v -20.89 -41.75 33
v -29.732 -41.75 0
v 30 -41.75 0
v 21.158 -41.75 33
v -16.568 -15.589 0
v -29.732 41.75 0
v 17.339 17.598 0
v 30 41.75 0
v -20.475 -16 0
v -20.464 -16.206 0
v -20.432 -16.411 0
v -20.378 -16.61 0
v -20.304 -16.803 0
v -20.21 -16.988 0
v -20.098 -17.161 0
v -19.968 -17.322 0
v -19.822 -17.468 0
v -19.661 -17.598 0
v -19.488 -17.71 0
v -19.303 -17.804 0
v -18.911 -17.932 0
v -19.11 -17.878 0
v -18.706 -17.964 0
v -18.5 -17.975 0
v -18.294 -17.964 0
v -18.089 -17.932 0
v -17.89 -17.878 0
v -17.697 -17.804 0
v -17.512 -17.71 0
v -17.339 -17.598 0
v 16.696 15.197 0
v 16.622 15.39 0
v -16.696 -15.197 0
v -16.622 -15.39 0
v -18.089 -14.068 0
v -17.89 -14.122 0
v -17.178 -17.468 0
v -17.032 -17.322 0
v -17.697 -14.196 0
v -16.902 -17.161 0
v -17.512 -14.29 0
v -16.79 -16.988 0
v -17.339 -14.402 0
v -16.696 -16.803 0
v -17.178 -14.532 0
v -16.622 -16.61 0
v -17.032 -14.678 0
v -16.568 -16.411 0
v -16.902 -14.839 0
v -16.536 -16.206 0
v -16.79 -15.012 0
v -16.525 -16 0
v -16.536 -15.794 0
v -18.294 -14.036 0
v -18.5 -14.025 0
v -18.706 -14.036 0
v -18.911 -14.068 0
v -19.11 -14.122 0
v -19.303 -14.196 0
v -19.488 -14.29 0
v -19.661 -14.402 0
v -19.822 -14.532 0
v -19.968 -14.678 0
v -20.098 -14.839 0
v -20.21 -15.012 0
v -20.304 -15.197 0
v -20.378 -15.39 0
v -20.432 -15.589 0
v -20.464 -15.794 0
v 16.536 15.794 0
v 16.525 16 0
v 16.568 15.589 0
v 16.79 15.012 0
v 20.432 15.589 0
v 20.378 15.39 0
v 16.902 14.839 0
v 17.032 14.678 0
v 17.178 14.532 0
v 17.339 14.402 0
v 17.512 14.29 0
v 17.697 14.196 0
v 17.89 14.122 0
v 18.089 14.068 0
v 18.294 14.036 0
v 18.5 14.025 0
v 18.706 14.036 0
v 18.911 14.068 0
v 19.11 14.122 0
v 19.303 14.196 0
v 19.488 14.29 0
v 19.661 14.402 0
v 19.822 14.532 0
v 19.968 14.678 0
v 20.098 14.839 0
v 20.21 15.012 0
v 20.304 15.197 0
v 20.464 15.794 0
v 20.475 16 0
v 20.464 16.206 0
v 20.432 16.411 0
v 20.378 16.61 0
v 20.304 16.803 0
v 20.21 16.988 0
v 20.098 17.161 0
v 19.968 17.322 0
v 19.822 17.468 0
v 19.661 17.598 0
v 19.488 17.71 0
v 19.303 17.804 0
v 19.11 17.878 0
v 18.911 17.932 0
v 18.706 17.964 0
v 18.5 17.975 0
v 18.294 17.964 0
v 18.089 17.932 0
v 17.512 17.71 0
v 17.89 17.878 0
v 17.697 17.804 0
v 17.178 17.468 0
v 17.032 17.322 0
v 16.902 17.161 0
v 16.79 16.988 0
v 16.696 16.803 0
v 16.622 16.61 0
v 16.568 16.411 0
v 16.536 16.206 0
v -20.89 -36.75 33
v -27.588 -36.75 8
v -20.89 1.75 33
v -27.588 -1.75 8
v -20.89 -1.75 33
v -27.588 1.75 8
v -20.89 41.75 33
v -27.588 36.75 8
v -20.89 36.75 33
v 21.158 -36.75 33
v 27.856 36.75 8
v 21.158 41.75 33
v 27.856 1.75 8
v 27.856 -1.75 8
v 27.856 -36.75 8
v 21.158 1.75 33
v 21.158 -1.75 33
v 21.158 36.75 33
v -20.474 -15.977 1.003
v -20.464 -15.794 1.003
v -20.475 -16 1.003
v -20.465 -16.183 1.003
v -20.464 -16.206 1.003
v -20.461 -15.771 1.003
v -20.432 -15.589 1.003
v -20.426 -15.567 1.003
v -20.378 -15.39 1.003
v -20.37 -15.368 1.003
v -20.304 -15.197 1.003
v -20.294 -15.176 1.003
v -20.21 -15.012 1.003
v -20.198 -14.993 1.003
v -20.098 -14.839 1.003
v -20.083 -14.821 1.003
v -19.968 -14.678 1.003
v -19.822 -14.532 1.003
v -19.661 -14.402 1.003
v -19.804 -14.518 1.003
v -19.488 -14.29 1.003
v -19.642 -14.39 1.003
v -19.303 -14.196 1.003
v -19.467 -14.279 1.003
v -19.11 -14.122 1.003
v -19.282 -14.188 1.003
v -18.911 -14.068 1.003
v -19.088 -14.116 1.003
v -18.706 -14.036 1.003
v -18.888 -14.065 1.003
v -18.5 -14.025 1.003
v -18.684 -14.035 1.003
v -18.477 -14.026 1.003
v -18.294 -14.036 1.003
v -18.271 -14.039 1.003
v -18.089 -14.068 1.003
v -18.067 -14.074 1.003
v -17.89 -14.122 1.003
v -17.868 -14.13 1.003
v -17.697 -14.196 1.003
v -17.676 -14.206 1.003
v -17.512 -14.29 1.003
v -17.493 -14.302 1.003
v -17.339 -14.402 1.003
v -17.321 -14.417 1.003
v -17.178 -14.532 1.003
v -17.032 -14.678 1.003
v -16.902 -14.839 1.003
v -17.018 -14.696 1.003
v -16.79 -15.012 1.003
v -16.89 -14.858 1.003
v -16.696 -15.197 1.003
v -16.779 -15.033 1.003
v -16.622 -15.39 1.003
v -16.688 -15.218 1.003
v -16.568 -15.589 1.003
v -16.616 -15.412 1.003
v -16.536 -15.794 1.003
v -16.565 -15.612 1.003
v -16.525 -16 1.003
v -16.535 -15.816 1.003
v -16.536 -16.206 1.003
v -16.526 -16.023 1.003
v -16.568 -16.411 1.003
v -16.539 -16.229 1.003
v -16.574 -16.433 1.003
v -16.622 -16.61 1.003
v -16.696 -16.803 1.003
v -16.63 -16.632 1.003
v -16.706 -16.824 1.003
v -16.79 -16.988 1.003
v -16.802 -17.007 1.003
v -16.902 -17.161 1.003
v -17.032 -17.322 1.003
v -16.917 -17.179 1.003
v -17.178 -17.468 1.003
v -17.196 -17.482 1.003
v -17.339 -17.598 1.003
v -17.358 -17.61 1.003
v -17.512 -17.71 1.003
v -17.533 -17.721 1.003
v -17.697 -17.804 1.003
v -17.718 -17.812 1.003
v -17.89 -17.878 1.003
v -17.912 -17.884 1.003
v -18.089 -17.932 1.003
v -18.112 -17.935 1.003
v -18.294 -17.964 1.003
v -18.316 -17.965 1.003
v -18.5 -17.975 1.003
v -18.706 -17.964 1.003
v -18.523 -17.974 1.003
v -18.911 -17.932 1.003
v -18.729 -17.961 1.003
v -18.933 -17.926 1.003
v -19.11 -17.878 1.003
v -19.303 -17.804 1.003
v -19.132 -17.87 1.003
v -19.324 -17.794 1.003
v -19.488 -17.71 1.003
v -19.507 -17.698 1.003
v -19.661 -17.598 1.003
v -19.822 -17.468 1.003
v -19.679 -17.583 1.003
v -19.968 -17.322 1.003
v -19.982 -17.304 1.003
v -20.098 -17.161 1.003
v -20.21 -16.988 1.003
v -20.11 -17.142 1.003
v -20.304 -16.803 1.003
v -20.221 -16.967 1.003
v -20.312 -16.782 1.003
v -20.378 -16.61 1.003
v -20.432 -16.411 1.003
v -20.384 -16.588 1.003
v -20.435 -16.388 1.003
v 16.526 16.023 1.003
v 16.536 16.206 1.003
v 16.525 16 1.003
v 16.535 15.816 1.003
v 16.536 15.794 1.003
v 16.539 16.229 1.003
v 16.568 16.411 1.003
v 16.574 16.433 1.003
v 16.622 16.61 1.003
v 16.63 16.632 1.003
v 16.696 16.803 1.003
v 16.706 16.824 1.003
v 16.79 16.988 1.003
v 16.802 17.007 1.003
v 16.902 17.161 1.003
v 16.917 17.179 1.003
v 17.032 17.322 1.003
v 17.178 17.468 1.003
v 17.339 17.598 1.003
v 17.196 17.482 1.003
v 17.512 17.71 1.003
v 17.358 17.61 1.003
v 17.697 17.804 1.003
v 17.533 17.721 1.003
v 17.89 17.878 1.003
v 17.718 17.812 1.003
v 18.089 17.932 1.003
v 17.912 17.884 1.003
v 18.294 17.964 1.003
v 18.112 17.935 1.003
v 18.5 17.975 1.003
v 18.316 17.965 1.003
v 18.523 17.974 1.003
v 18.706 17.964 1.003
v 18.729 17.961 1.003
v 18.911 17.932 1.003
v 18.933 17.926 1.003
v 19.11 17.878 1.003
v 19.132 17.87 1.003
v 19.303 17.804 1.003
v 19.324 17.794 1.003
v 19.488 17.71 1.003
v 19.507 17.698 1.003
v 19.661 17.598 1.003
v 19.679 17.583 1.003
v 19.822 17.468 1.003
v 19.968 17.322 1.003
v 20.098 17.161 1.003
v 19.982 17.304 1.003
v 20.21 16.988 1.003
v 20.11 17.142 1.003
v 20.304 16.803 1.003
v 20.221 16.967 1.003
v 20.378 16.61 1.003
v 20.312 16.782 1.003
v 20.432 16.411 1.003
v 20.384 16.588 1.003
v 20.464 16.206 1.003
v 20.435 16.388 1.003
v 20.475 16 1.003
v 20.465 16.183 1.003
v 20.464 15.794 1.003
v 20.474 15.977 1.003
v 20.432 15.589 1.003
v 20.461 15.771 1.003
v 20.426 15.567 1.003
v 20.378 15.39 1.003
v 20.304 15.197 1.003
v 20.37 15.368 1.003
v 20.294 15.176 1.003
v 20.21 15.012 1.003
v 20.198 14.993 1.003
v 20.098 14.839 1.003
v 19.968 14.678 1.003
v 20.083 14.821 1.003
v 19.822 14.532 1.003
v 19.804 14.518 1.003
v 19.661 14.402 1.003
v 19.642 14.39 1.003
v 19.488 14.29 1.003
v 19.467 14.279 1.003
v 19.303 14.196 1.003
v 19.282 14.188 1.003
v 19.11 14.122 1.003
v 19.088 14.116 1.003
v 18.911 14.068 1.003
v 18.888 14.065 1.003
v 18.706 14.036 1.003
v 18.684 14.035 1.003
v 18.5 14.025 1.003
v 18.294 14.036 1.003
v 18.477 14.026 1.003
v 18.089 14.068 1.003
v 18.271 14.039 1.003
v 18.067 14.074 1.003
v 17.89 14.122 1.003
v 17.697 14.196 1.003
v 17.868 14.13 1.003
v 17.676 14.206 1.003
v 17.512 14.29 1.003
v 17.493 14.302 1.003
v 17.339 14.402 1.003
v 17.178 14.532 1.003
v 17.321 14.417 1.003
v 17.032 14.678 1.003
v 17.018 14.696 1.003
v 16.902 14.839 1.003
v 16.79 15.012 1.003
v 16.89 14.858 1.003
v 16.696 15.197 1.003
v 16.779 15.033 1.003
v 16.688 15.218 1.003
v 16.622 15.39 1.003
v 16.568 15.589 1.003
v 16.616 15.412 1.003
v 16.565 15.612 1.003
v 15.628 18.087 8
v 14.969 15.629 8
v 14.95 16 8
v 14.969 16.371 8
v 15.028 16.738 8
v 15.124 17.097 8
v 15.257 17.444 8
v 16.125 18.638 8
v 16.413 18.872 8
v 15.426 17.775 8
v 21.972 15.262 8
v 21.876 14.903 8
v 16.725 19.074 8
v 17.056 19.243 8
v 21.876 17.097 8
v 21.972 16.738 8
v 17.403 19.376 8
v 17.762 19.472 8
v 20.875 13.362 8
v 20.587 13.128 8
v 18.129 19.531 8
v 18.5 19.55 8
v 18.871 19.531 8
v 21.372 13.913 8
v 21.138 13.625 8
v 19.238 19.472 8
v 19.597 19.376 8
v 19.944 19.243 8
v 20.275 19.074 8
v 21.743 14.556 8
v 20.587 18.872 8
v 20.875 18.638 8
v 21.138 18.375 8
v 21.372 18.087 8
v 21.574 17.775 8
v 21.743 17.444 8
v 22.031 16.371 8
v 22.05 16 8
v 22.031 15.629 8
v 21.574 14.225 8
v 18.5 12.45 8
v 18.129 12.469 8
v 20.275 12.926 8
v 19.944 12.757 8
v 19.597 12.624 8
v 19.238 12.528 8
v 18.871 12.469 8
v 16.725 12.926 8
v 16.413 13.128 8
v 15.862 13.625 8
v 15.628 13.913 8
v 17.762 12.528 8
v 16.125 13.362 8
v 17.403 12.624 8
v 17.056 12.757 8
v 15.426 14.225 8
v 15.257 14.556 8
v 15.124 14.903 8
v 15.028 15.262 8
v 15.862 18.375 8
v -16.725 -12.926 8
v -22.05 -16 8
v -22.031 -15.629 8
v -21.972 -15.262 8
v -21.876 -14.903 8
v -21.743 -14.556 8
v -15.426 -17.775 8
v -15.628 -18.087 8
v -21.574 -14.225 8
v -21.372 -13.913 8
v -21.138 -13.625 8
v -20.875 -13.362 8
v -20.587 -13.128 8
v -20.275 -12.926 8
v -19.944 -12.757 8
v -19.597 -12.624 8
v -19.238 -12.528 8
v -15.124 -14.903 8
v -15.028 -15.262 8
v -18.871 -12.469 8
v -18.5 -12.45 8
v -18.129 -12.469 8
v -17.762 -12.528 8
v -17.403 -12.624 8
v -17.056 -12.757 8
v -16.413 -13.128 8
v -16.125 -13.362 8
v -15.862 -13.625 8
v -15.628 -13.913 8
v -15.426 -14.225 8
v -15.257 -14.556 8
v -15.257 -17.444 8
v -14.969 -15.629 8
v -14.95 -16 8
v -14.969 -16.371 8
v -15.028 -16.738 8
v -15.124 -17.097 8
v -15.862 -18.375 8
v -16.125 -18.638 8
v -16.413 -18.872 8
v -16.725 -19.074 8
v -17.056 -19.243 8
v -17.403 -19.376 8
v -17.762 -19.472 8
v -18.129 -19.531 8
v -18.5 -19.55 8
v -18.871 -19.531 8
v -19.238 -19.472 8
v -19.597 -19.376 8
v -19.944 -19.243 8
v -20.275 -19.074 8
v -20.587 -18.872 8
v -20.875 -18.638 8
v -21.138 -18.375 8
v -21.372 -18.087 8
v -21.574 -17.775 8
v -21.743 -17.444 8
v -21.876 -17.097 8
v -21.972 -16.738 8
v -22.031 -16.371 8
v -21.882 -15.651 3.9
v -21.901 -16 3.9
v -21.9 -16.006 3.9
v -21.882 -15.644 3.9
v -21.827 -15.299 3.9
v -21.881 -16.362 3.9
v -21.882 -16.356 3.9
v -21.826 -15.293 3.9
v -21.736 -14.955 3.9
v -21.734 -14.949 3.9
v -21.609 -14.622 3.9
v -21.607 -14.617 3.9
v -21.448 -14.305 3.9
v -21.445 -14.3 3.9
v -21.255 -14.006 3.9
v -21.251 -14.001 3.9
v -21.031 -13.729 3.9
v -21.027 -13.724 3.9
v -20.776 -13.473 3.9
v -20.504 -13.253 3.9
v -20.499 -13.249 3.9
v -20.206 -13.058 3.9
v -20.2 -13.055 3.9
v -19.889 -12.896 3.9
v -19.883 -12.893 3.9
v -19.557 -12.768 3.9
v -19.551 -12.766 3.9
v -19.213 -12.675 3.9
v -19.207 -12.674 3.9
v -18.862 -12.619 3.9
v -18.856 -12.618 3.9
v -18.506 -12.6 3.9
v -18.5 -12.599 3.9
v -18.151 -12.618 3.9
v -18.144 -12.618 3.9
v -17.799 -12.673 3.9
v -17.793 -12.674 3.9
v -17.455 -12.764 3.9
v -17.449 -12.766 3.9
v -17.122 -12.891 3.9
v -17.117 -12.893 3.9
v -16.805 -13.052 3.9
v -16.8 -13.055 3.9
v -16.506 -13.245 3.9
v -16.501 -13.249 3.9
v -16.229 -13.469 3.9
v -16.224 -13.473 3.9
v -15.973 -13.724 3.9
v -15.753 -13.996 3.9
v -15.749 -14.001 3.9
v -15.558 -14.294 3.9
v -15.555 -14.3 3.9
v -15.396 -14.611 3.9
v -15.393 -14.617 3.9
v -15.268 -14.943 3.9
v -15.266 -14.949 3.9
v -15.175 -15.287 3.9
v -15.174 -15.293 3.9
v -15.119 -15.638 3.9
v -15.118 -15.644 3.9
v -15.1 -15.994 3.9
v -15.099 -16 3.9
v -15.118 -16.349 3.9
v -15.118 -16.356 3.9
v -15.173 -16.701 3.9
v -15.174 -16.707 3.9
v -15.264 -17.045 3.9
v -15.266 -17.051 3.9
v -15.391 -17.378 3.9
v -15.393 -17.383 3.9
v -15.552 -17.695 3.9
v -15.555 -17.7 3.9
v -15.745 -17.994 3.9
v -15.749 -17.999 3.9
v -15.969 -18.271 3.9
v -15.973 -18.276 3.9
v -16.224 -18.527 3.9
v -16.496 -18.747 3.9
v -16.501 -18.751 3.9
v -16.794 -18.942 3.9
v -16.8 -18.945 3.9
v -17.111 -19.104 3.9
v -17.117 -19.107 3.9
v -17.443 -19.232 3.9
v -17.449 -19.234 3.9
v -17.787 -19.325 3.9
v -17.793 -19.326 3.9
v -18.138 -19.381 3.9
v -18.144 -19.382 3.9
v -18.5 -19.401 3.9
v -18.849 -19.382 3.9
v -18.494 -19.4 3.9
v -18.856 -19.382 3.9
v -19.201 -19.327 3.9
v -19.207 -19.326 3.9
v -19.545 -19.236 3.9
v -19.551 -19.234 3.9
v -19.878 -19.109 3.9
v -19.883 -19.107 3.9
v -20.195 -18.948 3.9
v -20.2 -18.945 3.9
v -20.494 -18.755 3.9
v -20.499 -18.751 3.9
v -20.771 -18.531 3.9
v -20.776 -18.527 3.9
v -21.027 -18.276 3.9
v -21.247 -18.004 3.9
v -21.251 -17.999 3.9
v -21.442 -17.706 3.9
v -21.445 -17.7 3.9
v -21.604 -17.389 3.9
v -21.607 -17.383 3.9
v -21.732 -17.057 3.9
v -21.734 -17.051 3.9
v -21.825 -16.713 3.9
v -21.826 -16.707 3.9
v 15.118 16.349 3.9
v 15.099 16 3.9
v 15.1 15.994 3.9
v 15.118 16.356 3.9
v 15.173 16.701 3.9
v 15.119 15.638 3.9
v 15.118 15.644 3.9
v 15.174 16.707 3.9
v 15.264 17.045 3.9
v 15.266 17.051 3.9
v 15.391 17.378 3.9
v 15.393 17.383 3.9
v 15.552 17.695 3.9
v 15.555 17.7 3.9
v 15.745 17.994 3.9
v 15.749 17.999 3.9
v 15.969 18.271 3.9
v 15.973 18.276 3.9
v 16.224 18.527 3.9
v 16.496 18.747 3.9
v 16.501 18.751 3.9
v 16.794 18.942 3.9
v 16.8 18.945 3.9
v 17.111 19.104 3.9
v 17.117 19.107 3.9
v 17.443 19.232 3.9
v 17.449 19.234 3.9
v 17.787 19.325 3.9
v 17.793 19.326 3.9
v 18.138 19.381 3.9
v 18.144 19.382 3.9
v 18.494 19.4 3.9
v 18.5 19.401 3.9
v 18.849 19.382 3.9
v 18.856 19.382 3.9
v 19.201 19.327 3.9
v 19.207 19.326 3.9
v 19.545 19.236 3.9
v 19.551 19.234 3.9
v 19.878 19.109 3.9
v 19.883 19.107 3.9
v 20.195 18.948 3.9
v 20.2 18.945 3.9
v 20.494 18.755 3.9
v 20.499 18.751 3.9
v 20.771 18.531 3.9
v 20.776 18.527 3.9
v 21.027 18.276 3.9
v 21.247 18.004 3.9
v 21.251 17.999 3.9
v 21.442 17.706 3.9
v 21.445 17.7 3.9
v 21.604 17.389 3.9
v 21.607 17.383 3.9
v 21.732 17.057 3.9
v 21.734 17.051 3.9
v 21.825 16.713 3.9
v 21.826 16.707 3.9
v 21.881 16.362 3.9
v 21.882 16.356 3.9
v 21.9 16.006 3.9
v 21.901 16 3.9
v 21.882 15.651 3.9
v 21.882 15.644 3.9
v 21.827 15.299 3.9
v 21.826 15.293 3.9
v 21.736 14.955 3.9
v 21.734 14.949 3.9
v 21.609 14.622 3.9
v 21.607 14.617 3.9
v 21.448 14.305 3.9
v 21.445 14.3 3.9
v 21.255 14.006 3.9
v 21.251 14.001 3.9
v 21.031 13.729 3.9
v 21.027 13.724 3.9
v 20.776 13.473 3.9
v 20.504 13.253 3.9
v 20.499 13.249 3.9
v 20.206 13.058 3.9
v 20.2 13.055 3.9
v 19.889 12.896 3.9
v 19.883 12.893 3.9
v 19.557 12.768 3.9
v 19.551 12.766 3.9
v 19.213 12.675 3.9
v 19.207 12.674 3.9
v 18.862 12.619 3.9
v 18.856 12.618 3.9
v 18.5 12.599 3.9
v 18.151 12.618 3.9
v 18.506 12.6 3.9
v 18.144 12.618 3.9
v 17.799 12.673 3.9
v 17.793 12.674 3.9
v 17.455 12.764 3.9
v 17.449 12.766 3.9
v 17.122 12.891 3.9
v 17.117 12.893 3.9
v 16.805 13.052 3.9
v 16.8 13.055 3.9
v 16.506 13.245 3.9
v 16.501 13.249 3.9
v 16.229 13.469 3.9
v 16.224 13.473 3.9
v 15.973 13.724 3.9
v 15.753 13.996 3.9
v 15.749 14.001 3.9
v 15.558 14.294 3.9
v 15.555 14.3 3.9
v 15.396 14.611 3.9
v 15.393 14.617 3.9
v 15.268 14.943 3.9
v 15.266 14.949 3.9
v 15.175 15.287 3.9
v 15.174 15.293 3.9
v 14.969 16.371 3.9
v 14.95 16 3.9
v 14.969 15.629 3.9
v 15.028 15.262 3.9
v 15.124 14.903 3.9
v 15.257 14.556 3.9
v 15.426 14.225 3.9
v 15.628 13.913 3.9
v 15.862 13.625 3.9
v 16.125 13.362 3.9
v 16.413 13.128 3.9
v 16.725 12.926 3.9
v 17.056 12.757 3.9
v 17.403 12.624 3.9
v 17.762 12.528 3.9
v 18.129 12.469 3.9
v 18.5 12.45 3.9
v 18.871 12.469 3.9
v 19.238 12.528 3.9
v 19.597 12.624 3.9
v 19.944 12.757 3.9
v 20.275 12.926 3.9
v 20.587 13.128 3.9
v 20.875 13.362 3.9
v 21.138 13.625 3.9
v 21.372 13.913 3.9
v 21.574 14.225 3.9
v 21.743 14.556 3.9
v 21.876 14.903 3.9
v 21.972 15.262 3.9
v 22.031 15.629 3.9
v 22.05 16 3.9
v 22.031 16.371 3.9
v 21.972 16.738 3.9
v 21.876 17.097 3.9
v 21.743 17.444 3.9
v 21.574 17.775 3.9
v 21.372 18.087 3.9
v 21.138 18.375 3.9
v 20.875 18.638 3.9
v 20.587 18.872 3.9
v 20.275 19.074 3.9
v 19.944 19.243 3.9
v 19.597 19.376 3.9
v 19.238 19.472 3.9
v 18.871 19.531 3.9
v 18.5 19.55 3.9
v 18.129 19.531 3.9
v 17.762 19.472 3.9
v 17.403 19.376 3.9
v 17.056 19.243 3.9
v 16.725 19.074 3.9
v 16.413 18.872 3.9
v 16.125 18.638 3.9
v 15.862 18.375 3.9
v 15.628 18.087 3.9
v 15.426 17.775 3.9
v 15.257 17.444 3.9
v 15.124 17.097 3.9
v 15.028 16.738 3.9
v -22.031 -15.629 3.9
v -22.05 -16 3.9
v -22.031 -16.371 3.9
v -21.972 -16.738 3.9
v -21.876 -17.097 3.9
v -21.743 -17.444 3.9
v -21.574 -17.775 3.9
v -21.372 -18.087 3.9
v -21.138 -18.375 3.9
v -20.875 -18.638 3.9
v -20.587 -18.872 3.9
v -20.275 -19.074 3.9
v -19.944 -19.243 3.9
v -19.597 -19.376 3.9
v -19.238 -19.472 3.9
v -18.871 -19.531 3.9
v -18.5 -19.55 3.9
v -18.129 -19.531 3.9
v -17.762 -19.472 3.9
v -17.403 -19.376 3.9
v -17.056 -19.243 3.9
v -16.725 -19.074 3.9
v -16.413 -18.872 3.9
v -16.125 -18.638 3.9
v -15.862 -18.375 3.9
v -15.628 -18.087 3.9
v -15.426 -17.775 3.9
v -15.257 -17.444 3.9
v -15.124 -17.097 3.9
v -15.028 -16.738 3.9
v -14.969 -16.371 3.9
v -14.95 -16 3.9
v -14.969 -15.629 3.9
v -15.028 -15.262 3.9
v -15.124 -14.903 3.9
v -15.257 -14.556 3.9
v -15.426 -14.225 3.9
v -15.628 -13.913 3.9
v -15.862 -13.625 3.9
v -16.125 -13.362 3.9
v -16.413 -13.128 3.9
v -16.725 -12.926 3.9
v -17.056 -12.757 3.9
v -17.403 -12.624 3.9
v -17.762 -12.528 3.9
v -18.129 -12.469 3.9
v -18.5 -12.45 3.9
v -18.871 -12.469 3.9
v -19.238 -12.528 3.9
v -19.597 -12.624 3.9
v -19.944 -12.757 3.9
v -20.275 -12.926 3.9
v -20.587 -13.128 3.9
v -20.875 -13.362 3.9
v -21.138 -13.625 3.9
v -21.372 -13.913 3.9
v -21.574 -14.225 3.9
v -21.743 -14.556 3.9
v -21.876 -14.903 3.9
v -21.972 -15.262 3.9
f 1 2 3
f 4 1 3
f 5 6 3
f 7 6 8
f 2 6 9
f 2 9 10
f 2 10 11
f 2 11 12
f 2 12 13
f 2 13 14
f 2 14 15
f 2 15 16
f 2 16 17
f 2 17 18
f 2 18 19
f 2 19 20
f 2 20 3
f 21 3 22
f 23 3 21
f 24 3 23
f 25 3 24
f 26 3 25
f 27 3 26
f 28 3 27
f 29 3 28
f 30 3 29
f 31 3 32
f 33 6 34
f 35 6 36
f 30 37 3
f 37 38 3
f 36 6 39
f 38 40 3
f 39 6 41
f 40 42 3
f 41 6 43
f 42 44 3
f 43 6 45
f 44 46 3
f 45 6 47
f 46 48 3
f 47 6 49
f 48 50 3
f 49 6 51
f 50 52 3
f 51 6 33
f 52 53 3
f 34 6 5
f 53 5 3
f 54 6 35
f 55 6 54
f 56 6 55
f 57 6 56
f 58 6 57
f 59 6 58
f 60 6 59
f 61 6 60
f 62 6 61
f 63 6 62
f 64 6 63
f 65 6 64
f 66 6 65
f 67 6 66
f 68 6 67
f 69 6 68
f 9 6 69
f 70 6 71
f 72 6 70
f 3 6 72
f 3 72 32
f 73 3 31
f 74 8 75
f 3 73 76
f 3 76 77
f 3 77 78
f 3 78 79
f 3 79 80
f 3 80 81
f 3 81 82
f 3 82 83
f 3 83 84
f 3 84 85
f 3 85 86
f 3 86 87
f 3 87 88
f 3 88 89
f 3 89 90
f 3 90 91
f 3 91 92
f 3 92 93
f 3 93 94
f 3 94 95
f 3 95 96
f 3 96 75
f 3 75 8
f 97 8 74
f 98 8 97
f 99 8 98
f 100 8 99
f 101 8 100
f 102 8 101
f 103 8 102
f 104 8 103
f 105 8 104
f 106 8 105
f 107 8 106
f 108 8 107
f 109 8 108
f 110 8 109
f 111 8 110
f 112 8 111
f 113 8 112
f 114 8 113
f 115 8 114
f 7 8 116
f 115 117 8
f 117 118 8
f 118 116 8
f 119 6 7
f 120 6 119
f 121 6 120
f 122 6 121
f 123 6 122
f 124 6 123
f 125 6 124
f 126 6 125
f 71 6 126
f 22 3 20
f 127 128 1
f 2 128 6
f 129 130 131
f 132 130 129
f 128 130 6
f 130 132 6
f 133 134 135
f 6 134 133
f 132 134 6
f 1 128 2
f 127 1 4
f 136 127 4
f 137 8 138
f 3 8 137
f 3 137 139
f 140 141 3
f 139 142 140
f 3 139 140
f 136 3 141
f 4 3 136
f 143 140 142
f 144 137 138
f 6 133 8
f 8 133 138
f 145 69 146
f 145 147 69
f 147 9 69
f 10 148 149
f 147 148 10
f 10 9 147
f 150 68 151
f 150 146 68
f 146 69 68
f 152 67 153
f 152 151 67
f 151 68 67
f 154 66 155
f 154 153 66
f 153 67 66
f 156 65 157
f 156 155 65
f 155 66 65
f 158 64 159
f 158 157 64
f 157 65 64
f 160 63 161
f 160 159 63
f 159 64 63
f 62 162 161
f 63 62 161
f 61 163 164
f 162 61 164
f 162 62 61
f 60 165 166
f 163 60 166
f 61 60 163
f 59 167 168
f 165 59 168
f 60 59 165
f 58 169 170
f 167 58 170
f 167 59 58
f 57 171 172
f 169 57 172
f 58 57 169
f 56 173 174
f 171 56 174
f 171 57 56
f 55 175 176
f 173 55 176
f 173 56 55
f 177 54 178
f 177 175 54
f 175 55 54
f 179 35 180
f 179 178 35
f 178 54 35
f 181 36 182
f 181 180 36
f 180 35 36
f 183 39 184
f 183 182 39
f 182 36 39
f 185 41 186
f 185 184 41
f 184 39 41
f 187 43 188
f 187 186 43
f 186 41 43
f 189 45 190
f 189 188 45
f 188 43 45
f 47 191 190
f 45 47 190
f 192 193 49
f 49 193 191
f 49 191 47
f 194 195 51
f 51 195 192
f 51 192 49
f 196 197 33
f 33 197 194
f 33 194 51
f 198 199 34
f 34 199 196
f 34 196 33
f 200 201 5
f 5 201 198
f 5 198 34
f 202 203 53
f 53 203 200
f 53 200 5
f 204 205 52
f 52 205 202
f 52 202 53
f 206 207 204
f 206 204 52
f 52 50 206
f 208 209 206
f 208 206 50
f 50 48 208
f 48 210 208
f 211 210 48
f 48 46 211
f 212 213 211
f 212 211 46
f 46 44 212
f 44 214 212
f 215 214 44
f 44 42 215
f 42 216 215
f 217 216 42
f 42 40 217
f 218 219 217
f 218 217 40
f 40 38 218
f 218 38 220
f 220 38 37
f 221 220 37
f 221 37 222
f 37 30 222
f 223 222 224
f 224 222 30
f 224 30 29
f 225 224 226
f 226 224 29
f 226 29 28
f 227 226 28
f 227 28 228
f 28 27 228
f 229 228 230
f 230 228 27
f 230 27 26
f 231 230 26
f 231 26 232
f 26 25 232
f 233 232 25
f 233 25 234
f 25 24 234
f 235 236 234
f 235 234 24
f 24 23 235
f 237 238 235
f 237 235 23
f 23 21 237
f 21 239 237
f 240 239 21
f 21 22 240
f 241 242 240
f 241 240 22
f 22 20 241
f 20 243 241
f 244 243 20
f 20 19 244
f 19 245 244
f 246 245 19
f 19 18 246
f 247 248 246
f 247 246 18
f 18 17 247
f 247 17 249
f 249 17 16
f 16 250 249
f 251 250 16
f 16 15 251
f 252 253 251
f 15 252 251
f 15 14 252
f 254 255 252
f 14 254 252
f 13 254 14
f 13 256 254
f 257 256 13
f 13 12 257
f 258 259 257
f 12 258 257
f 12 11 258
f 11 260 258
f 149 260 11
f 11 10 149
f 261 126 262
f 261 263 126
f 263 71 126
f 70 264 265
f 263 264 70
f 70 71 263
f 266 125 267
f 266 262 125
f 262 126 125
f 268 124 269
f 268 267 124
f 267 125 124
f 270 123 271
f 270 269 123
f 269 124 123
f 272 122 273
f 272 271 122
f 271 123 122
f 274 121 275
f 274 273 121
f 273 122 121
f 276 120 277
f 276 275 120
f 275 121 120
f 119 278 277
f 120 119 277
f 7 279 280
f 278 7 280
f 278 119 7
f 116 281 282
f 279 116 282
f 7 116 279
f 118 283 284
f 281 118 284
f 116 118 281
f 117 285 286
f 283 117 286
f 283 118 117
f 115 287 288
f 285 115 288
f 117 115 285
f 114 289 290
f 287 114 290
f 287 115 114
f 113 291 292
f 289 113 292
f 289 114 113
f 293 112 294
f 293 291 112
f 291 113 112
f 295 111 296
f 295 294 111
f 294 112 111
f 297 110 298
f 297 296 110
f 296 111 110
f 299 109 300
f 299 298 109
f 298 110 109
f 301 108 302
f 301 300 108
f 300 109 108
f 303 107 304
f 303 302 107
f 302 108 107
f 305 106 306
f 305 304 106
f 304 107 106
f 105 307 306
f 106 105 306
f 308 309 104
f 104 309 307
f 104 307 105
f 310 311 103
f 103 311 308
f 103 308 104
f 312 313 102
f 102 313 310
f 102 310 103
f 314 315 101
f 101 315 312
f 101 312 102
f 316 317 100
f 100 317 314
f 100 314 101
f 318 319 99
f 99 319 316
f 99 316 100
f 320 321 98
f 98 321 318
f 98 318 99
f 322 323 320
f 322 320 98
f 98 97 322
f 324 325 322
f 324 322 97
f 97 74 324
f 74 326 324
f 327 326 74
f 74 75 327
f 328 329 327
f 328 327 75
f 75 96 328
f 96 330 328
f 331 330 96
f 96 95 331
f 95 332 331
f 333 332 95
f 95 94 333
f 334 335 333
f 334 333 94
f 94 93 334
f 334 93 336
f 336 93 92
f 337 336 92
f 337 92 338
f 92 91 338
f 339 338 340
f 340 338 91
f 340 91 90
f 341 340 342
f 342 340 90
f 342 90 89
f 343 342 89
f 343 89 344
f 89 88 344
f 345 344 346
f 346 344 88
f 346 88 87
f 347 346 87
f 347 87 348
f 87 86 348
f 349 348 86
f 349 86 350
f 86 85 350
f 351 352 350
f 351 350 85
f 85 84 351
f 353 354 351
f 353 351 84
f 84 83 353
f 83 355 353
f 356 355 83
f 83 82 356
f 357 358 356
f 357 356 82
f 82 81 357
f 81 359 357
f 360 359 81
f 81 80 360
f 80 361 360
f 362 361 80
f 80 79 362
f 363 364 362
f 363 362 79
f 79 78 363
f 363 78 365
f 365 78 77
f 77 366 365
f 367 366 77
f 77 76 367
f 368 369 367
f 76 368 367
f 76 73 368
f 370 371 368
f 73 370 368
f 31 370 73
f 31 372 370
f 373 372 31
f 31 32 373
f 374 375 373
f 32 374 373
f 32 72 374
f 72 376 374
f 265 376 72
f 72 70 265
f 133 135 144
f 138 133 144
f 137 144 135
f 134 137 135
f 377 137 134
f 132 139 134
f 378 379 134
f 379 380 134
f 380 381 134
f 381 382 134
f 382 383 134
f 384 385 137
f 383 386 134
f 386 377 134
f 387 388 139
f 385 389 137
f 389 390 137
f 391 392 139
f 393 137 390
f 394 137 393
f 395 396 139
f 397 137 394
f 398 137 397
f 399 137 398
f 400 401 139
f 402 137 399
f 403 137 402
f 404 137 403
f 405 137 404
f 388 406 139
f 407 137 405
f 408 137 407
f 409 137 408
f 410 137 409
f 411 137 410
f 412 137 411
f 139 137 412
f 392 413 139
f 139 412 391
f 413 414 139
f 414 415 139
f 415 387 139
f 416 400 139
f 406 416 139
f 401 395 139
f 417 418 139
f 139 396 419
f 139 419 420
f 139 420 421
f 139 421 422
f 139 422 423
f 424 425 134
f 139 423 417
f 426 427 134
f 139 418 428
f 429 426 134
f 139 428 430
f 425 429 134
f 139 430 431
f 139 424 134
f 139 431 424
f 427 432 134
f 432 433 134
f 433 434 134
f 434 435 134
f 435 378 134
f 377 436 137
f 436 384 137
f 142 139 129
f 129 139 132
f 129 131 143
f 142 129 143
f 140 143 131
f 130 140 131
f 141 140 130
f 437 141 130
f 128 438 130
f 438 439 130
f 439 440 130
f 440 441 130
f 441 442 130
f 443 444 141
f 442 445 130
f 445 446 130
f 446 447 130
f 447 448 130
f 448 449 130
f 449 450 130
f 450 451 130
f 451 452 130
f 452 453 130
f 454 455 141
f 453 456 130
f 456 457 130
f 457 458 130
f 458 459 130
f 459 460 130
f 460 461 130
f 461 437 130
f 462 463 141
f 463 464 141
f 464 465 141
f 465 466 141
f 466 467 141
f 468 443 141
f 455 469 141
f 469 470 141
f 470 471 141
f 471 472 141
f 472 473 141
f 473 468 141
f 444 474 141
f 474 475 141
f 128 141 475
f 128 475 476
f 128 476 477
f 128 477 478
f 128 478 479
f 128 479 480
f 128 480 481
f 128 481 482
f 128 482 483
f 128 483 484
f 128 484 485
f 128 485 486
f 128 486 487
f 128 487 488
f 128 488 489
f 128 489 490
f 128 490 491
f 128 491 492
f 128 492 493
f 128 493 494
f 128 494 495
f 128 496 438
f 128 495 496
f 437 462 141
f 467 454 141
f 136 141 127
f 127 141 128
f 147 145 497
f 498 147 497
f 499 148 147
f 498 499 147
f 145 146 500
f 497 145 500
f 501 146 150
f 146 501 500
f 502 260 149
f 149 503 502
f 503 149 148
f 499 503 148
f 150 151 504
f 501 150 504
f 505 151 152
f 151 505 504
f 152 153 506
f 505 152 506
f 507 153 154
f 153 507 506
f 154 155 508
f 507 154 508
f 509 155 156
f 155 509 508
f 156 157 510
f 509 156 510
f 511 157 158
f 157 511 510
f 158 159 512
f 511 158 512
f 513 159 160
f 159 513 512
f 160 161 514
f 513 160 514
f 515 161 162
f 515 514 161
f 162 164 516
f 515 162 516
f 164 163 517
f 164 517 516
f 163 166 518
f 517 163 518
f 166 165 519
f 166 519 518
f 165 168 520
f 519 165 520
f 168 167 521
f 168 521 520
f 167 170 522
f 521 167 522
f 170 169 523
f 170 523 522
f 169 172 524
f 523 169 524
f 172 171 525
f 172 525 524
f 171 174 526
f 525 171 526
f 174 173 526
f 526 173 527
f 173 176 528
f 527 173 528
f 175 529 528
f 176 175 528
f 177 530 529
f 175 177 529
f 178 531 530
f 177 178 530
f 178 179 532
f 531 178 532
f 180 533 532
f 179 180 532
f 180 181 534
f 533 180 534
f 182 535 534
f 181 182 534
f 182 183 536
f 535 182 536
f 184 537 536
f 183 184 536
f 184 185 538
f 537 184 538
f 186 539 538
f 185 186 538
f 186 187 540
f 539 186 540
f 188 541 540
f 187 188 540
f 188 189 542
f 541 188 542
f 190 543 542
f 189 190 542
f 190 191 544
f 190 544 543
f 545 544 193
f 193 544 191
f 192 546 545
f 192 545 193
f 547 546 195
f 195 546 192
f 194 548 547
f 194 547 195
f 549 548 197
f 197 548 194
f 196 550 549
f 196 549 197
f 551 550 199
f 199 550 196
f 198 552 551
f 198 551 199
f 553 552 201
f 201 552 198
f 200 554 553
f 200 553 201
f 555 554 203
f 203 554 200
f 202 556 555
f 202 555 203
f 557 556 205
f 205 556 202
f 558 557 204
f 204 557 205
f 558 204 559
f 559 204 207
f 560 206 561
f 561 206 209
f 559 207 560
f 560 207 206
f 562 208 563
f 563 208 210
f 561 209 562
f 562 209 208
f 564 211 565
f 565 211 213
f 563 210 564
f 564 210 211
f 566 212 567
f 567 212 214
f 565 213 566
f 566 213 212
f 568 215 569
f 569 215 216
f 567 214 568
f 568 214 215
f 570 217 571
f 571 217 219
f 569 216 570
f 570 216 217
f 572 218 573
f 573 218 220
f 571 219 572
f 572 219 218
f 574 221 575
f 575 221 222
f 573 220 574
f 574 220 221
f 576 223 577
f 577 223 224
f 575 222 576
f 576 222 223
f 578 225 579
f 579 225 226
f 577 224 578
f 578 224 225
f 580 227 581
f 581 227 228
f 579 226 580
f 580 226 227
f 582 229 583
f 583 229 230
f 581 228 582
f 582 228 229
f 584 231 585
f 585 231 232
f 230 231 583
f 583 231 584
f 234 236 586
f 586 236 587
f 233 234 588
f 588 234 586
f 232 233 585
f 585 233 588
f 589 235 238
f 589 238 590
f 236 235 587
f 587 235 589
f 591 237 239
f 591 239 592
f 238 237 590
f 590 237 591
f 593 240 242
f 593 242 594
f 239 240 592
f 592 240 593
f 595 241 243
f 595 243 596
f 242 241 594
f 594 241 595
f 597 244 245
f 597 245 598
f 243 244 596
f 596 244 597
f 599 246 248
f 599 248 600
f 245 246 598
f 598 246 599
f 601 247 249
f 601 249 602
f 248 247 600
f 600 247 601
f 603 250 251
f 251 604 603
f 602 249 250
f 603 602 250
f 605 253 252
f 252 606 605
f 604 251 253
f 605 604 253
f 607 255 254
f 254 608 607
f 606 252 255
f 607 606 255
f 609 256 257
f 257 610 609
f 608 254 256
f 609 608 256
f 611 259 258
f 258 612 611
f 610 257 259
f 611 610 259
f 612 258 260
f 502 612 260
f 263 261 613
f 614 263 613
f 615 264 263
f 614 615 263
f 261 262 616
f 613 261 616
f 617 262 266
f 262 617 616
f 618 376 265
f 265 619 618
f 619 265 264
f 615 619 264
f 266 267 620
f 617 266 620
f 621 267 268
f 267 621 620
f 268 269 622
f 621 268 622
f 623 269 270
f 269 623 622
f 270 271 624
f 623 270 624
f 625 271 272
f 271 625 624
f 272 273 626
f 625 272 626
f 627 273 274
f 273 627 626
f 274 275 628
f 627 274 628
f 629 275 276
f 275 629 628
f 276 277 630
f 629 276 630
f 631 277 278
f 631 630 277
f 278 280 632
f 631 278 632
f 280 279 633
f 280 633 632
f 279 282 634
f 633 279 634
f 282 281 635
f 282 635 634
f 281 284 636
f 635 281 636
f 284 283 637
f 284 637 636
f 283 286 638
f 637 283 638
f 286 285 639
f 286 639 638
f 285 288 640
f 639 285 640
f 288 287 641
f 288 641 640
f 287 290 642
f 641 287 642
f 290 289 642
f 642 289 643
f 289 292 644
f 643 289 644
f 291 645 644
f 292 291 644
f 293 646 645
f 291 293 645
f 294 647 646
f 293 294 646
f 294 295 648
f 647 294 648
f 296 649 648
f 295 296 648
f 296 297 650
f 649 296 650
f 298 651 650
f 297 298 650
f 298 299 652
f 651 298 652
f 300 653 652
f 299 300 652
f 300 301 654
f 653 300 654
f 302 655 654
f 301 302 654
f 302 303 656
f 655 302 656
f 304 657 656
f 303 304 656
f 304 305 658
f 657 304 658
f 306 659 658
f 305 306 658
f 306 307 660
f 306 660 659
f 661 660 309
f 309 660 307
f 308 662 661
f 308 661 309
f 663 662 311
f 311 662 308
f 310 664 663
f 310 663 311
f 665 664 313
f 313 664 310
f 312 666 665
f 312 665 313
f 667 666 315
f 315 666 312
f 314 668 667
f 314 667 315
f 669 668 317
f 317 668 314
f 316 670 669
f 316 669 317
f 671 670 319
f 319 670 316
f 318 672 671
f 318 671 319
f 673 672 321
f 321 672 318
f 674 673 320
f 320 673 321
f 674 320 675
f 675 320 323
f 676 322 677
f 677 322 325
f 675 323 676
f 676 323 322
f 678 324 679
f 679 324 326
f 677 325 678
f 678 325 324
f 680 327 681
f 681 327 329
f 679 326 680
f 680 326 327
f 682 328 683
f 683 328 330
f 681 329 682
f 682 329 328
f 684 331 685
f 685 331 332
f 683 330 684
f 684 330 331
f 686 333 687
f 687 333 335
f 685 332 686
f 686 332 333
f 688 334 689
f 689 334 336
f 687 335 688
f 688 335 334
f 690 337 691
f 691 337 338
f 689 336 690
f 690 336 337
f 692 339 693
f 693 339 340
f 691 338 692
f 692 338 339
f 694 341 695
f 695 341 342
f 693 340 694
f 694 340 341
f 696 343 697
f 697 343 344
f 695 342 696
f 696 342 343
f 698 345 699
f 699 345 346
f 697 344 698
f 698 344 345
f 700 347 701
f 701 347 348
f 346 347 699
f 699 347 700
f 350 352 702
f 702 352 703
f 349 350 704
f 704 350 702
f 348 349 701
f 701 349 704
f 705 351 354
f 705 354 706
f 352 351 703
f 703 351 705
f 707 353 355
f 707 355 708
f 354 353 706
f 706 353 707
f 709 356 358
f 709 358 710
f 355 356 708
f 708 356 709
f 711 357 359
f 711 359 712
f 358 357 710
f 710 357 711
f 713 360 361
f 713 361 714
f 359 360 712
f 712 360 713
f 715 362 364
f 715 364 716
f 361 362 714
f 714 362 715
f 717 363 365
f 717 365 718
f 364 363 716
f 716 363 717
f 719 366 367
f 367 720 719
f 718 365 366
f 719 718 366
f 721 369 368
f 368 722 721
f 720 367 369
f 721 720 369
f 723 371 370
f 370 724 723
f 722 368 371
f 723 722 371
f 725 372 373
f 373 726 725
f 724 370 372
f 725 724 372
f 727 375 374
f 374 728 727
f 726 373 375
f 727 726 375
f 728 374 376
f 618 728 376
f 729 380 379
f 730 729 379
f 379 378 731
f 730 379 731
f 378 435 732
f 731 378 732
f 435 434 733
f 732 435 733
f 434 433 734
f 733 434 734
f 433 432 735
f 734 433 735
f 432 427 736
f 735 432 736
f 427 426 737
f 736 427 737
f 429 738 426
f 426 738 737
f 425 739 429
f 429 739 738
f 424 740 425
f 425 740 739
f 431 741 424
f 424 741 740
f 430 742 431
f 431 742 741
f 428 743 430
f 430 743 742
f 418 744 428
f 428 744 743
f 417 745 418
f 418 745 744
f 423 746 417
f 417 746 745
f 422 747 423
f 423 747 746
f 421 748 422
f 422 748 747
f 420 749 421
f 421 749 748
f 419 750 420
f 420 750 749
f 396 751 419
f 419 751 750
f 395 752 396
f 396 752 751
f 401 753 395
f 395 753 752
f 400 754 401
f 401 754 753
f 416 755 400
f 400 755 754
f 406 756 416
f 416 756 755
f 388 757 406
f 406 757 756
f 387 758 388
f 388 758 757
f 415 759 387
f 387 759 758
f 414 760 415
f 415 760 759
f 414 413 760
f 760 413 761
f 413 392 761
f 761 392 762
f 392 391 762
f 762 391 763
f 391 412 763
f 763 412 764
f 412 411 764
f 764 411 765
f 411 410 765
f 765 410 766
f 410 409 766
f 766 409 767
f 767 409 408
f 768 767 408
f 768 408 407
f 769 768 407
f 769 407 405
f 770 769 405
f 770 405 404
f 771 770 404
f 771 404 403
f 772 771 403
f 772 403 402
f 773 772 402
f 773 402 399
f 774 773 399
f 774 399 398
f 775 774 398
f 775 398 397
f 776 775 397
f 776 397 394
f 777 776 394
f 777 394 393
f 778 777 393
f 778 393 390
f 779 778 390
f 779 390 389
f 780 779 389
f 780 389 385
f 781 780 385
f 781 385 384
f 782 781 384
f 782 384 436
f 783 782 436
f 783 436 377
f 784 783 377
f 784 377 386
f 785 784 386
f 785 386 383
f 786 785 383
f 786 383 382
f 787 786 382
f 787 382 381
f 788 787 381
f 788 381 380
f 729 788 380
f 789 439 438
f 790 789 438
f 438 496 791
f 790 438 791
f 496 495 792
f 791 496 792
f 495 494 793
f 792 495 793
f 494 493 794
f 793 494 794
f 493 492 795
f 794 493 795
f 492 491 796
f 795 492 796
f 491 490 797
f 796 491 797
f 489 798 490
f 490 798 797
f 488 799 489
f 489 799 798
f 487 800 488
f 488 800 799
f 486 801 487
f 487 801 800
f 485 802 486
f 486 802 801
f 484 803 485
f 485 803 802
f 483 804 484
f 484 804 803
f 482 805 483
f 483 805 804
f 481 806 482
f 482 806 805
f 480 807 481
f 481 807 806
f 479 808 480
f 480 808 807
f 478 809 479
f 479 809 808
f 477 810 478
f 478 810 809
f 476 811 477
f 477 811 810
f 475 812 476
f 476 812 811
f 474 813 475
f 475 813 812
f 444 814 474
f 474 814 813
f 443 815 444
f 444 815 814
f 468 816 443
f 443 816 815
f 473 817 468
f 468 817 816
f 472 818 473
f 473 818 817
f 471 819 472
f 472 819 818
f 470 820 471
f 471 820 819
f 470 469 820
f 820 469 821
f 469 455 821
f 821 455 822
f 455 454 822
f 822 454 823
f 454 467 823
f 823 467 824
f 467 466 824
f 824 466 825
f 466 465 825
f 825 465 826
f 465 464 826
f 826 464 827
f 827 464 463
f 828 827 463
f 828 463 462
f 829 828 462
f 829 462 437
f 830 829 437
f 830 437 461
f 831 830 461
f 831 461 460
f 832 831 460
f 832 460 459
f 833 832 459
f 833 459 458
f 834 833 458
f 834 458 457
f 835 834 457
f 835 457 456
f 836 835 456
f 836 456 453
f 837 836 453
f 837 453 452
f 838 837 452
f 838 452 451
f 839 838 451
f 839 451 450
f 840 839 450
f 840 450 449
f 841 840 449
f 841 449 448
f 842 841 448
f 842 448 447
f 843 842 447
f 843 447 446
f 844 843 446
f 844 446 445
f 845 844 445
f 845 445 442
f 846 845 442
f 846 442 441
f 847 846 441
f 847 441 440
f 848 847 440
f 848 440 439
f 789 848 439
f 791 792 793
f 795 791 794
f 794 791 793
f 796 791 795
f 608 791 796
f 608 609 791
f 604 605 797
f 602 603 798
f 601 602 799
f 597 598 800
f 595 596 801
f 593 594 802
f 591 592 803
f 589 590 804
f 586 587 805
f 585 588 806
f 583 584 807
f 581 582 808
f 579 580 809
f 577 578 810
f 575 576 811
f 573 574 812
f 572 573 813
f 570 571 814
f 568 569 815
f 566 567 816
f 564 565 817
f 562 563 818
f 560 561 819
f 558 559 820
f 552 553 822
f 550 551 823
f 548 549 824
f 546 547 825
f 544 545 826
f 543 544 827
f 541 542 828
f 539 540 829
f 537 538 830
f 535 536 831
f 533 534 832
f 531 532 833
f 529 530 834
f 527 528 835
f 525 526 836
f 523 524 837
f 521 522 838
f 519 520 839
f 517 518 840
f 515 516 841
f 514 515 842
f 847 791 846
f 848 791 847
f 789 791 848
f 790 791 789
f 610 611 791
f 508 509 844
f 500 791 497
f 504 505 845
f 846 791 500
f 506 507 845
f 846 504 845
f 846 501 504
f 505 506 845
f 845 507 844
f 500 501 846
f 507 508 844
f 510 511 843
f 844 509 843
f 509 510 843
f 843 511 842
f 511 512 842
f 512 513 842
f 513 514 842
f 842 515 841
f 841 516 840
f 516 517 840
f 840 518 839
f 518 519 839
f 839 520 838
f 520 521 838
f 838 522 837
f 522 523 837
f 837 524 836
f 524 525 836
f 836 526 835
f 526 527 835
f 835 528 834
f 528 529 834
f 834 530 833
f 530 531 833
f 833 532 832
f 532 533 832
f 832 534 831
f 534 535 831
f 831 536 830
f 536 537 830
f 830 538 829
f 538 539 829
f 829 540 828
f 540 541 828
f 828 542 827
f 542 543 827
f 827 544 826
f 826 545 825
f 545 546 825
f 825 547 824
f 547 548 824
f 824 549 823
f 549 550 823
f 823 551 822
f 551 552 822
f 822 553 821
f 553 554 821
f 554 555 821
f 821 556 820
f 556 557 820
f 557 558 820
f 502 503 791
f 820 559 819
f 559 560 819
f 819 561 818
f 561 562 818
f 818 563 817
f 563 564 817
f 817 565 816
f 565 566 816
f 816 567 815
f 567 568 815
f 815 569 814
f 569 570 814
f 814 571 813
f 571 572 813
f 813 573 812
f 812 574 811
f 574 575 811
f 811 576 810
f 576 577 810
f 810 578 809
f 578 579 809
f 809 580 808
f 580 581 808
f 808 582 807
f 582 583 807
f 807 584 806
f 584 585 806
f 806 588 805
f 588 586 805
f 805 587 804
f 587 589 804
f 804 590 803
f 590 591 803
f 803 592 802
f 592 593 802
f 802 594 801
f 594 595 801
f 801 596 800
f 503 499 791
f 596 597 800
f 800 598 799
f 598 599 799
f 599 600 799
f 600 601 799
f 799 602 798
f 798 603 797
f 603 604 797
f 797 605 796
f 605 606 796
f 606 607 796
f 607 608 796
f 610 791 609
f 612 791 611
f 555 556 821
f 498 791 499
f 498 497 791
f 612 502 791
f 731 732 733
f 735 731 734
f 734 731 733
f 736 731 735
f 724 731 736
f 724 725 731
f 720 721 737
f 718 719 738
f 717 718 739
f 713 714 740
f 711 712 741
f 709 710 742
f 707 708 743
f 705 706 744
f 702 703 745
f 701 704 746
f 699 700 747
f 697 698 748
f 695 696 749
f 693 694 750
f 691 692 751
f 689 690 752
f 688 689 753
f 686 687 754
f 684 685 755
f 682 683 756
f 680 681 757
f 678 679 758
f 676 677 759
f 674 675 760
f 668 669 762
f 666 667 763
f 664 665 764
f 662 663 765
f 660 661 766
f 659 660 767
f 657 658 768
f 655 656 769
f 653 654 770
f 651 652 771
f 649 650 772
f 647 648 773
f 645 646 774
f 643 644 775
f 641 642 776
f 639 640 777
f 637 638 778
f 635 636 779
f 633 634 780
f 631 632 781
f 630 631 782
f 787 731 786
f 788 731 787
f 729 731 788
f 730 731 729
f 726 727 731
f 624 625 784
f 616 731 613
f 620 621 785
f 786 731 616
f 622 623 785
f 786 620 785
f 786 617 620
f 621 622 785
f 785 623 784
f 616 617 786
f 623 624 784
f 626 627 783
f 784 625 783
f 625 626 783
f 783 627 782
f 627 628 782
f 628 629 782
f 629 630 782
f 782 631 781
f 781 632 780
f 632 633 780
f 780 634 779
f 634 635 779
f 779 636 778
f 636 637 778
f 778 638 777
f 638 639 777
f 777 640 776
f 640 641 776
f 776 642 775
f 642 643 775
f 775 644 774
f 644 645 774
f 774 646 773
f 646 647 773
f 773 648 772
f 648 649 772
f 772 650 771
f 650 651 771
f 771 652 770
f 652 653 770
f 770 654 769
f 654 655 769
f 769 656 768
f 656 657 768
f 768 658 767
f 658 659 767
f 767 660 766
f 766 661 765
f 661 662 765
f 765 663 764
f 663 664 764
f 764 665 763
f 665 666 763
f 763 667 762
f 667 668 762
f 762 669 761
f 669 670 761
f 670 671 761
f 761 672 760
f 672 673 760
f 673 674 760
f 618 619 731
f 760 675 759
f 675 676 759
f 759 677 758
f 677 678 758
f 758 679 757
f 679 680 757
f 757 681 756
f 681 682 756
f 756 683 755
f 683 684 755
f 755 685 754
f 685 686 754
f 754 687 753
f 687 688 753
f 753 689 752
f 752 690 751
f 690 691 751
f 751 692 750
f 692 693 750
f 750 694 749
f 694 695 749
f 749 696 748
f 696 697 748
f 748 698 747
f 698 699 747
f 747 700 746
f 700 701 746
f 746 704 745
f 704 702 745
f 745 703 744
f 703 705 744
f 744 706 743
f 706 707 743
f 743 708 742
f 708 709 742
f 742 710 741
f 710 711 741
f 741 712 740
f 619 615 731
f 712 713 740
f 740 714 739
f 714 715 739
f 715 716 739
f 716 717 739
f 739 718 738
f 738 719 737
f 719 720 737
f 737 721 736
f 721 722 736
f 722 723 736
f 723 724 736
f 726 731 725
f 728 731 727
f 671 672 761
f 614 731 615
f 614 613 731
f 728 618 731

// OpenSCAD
$fn=60;
height = 33;
length = 60;
doorwidth= 35;
wall_thickness = 5;
middlewall_thickness = 3.5;
bottom_thickness = 8;
screw_bottom_thickness = 4;

totalwidth = doorwidth * 2 + wall_thickness * 2 + middlewall_thickness;

difference()
{
	translate([-length/2, -totalwidth/2,0])cube([length, totalwidth, height]);
	translate([-length/2-2,middlewall_thickness/2, bottom_thickness])cube([length + 4, doorwidth, height]);
	translate([-length/2-2,-doorwidth - middlewall_thickness/2, bottom_thickness])cube([length + 4, doorwidth, height]);
	
	translate([length/2,-totalwidth/2-1,0])
		rotate([0,-15,0])
			cube([40,totalwidth+2,50]);
	translate([0,0,-1])
	# rotate([0,0,180])
	translate([length/2,-totalwidth/2-1,0])
		rotate([0,-15,0])
			cube([40,totalwidth+2,50]);
	
	translate([18.5,16,screw_bottom_thickness])screwhole();
	translate([-18.5,-16, screw_bottom_thickness])screwhole();
	
}


screw_dia = 3.75;
screw_length = 19;
head_dia = 6.7;
head_depth = 3.2;
module screwhole()
{
	translate([0,0,-screw_length])
	color("green")
	cylinder(r=screw_dia / 2 + .1, h=screw_length);
	
	color("green")
	translate([0,0,-head_depth])
	cylinder(r2=head_dia / 2 + .1, r = screw_dia / 2, h=head_depth);
	
	color("green")
	translate([0,0,-.1])
	cylinder(r=head_dia / 2+.2, h=10);
	
}
